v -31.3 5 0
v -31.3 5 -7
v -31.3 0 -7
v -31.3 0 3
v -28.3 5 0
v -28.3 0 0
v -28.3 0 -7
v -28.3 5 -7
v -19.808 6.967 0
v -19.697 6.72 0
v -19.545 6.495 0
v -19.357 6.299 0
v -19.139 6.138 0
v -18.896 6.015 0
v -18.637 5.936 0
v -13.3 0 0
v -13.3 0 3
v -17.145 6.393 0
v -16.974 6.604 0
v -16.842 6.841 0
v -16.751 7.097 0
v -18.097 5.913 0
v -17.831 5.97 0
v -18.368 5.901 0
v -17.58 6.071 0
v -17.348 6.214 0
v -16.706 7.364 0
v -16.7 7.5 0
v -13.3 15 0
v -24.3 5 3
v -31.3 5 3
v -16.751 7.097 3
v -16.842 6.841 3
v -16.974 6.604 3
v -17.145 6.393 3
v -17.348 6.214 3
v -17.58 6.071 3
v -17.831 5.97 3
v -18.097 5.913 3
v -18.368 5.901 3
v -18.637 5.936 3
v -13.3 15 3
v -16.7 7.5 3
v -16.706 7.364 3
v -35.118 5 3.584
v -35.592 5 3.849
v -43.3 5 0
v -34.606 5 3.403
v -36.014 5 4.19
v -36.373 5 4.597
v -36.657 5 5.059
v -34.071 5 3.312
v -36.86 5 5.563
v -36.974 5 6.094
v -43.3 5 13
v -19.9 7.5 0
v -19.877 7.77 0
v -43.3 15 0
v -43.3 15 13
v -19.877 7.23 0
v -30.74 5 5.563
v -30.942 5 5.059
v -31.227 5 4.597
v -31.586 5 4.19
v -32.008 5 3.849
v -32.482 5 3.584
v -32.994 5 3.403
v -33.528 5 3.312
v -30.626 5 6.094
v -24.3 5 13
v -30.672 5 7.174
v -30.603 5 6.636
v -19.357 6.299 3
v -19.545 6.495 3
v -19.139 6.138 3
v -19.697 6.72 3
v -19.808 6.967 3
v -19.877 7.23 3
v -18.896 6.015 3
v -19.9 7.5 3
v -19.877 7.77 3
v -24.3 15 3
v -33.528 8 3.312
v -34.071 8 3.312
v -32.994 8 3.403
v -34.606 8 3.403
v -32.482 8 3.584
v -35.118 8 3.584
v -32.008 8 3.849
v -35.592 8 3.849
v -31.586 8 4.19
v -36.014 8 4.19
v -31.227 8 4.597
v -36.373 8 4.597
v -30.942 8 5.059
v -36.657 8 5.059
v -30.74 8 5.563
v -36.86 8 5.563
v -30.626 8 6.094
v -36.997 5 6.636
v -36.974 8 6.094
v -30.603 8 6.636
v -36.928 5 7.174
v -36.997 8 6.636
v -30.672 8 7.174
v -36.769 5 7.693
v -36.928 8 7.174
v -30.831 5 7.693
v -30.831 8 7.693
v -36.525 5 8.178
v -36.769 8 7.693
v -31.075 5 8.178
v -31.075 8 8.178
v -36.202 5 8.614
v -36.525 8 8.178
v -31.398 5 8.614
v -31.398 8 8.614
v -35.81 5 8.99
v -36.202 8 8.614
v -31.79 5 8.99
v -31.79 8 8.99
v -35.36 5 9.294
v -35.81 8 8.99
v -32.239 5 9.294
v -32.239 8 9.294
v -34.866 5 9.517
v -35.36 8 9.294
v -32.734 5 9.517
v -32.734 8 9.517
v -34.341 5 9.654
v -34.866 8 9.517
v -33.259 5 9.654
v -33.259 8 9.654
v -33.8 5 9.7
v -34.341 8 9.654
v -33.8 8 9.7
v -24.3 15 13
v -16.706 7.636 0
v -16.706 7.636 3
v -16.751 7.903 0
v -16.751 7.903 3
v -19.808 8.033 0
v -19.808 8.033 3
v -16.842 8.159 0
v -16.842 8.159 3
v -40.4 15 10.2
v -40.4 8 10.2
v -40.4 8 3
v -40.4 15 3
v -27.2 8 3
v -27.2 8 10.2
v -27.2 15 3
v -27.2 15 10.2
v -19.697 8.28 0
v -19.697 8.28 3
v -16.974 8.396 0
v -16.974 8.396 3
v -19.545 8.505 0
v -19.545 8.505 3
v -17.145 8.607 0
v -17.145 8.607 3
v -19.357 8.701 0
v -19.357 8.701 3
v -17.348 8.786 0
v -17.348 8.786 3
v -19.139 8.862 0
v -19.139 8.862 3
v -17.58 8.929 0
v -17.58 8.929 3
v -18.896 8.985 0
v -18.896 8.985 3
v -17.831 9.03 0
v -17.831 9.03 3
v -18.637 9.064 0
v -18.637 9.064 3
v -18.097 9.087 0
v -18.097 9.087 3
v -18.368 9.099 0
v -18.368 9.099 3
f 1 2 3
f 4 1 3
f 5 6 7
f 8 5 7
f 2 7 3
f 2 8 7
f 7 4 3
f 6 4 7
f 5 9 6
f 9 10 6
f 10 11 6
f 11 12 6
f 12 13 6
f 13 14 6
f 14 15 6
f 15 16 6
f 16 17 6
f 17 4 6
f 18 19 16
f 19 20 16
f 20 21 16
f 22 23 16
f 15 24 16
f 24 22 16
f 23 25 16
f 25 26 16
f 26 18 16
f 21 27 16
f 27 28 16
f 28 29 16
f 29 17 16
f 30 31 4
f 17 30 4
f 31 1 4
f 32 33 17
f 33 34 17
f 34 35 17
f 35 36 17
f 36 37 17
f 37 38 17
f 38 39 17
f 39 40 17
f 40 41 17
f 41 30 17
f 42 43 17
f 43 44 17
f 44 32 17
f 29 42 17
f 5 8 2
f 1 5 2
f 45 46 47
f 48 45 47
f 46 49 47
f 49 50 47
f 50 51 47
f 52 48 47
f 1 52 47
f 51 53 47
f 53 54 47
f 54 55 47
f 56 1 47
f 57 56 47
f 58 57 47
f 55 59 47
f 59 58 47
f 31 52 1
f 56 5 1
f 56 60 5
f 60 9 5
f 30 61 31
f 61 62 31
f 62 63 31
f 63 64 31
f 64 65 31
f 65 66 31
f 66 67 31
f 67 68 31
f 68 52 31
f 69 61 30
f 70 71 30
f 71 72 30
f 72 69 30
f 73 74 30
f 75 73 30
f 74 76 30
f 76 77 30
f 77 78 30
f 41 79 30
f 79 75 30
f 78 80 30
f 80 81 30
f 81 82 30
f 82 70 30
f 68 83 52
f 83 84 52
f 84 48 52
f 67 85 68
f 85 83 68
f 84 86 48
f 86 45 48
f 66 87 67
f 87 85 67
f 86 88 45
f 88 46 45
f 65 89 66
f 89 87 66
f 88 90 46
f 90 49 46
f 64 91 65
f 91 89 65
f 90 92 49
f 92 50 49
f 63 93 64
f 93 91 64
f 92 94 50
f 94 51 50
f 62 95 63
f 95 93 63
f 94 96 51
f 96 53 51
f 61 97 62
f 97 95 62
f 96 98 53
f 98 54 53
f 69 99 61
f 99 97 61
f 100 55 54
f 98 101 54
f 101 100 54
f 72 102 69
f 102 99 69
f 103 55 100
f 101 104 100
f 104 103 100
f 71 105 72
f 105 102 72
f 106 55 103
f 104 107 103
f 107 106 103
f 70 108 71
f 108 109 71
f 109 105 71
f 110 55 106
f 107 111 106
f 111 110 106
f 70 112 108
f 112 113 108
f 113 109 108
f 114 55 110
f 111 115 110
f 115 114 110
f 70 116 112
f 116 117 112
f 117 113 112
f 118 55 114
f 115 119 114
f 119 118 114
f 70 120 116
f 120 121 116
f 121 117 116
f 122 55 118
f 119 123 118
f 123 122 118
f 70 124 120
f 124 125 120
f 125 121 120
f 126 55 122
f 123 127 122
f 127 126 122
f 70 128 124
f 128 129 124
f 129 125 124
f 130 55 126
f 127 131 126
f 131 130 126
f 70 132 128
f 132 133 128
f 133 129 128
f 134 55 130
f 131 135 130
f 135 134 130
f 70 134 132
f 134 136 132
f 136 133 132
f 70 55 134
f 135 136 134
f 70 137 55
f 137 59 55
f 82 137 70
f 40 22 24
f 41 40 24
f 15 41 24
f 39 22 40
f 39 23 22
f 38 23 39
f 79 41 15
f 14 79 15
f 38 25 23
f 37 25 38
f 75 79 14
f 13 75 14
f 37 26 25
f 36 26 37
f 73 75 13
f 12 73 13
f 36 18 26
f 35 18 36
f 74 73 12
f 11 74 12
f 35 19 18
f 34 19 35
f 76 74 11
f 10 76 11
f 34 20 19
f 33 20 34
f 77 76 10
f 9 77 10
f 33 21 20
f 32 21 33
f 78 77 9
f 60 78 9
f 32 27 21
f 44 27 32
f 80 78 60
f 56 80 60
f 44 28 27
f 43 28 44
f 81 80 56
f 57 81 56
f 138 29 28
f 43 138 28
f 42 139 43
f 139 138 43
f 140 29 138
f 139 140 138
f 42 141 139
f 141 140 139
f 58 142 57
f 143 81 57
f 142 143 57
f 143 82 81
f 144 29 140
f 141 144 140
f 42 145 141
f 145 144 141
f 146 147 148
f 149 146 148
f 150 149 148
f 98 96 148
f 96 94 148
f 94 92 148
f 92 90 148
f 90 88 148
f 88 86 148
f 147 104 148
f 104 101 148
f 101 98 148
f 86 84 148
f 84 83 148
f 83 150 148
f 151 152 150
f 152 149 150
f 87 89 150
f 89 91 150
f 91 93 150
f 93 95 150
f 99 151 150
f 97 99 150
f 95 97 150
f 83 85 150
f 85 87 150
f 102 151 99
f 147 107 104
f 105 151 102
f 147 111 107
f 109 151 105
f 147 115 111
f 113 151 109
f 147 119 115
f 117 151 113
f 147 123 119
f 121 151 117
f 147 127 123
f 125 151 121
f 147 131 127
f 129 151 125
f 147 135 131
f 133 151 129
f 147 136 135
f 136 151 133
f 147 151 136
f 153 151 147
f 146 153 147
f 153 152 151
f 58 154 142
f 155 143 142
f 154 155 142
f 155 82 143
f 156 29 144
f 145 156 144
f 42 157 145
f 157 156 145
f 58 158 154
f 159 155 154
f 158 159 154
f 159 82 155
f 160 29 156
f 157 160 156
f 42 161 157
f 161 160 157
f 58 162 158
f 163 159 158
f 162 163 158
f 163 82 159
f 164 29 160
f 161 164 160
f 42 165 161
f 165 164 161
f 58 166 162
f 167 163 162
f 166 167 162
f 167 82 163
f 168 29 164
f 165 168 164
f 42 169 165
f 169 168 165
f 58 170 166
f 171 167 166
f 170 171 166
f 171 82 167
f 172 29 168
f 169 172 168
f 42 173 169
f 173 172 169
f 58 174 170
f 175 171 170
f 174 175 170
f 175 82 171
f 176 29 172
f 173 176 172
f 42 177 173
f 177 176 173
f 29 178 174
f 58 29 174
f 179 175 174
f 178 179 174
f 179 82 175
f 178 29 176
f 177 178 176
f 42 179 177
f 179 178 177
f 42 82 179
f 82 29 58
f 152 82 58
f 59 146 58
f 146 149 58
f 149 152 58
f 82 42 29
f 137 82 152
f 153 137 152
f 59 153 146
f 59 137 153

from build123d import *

# Parameters (mm, degrees)
CROQUIS1_R              = 1.6
SALIENTE_EXTRUIR1_DEPTH = 3
CROQUIS2_W              = 19
CROQUIS2_H              = 10
SALIENTE_EXTRUIR2_DEPTH = 10
CROQUIS3_W              = 13.2
CROQUIS3_H              = 7.2
CORTAR_EXTRUIR1_DEPTH   = 7
CROQUIS4_R              = 3.2
CORTAR_EXTRUIR2_DEPTH   = 3
CROQUIS5_W              = 10
CROQUIS5_H              = 5
SALIENTE_EXTRUIR3_DEPTH = 3


with BuildPart() as part:
    # Croquis1 → Saliente-Extruir1 (new body)
    with BuildSketch(Plane.XY):
        Polygon((-13.299831285, 0), (-28.299831285, 0), (-28.299831285, 5), (-43.299831285, 5), (-43.299831285, 15), (-13.299831285, 15), align=None)
        with Locations((-18.299831285, 7.5)):
            Circle(CROQUIS1_R, mode=Mode.SUBTRACT)
    extrude(amount=SALIENTE_EXTRUIR1_DEPTH)

    # Croquis2 → Saliente-Extruir2 (add)
    with BuildSketch(Plane.XY.offset(3)):
        with Locations((-33.799831285, 10)):
            Rectangle(CROQUIS2_W, CROQUIS2_H)
    extrude(amount=SALIENTE_EXTRUIR2_DEPTH)

    # Croquis3 → Cortar-Extruir1 (cut)
    with BuildSketch(Plane(origin=(0, 15, 0), x_dir=(1, 0, 0), z_dir=(0, 1, 0))):
        with Locations((-33.799831285, -6.6)):
            Rectangle(CROQUIS3_W, CROQUIS3_H)
    extrude(amount=-CORTAR_EXTRUIR1_DEPTH, mode=Mode.SUBTRACT)

    # Croquis4 → Cortar-Extruir2 (cut)
    with BuildSketch(Plane(origin=(0, 8, 0), x_dir=(1, 0, 0), z_dir=(0, 1, 0))):
        with Locations((-33.799831285, -6.5)):
            Circle(CROQUIS4_R)
    extrude(amount=-CORTAR_EXTRUIR2_DEPTH, mode=Mode.SUBTRACT)

    # Croquis5 → Saliente-Extruir3 (add)
    with BuildSketch(Plane.ZY.offset(28.299831285)):
        with Locations((-2, 2.5)):
            Rectangle(CROQUIS5_W, CROQUIS5_H)
    extrude(amount=SALIENTE_EXTRUIR3_DEPTH)


solid = part.part
